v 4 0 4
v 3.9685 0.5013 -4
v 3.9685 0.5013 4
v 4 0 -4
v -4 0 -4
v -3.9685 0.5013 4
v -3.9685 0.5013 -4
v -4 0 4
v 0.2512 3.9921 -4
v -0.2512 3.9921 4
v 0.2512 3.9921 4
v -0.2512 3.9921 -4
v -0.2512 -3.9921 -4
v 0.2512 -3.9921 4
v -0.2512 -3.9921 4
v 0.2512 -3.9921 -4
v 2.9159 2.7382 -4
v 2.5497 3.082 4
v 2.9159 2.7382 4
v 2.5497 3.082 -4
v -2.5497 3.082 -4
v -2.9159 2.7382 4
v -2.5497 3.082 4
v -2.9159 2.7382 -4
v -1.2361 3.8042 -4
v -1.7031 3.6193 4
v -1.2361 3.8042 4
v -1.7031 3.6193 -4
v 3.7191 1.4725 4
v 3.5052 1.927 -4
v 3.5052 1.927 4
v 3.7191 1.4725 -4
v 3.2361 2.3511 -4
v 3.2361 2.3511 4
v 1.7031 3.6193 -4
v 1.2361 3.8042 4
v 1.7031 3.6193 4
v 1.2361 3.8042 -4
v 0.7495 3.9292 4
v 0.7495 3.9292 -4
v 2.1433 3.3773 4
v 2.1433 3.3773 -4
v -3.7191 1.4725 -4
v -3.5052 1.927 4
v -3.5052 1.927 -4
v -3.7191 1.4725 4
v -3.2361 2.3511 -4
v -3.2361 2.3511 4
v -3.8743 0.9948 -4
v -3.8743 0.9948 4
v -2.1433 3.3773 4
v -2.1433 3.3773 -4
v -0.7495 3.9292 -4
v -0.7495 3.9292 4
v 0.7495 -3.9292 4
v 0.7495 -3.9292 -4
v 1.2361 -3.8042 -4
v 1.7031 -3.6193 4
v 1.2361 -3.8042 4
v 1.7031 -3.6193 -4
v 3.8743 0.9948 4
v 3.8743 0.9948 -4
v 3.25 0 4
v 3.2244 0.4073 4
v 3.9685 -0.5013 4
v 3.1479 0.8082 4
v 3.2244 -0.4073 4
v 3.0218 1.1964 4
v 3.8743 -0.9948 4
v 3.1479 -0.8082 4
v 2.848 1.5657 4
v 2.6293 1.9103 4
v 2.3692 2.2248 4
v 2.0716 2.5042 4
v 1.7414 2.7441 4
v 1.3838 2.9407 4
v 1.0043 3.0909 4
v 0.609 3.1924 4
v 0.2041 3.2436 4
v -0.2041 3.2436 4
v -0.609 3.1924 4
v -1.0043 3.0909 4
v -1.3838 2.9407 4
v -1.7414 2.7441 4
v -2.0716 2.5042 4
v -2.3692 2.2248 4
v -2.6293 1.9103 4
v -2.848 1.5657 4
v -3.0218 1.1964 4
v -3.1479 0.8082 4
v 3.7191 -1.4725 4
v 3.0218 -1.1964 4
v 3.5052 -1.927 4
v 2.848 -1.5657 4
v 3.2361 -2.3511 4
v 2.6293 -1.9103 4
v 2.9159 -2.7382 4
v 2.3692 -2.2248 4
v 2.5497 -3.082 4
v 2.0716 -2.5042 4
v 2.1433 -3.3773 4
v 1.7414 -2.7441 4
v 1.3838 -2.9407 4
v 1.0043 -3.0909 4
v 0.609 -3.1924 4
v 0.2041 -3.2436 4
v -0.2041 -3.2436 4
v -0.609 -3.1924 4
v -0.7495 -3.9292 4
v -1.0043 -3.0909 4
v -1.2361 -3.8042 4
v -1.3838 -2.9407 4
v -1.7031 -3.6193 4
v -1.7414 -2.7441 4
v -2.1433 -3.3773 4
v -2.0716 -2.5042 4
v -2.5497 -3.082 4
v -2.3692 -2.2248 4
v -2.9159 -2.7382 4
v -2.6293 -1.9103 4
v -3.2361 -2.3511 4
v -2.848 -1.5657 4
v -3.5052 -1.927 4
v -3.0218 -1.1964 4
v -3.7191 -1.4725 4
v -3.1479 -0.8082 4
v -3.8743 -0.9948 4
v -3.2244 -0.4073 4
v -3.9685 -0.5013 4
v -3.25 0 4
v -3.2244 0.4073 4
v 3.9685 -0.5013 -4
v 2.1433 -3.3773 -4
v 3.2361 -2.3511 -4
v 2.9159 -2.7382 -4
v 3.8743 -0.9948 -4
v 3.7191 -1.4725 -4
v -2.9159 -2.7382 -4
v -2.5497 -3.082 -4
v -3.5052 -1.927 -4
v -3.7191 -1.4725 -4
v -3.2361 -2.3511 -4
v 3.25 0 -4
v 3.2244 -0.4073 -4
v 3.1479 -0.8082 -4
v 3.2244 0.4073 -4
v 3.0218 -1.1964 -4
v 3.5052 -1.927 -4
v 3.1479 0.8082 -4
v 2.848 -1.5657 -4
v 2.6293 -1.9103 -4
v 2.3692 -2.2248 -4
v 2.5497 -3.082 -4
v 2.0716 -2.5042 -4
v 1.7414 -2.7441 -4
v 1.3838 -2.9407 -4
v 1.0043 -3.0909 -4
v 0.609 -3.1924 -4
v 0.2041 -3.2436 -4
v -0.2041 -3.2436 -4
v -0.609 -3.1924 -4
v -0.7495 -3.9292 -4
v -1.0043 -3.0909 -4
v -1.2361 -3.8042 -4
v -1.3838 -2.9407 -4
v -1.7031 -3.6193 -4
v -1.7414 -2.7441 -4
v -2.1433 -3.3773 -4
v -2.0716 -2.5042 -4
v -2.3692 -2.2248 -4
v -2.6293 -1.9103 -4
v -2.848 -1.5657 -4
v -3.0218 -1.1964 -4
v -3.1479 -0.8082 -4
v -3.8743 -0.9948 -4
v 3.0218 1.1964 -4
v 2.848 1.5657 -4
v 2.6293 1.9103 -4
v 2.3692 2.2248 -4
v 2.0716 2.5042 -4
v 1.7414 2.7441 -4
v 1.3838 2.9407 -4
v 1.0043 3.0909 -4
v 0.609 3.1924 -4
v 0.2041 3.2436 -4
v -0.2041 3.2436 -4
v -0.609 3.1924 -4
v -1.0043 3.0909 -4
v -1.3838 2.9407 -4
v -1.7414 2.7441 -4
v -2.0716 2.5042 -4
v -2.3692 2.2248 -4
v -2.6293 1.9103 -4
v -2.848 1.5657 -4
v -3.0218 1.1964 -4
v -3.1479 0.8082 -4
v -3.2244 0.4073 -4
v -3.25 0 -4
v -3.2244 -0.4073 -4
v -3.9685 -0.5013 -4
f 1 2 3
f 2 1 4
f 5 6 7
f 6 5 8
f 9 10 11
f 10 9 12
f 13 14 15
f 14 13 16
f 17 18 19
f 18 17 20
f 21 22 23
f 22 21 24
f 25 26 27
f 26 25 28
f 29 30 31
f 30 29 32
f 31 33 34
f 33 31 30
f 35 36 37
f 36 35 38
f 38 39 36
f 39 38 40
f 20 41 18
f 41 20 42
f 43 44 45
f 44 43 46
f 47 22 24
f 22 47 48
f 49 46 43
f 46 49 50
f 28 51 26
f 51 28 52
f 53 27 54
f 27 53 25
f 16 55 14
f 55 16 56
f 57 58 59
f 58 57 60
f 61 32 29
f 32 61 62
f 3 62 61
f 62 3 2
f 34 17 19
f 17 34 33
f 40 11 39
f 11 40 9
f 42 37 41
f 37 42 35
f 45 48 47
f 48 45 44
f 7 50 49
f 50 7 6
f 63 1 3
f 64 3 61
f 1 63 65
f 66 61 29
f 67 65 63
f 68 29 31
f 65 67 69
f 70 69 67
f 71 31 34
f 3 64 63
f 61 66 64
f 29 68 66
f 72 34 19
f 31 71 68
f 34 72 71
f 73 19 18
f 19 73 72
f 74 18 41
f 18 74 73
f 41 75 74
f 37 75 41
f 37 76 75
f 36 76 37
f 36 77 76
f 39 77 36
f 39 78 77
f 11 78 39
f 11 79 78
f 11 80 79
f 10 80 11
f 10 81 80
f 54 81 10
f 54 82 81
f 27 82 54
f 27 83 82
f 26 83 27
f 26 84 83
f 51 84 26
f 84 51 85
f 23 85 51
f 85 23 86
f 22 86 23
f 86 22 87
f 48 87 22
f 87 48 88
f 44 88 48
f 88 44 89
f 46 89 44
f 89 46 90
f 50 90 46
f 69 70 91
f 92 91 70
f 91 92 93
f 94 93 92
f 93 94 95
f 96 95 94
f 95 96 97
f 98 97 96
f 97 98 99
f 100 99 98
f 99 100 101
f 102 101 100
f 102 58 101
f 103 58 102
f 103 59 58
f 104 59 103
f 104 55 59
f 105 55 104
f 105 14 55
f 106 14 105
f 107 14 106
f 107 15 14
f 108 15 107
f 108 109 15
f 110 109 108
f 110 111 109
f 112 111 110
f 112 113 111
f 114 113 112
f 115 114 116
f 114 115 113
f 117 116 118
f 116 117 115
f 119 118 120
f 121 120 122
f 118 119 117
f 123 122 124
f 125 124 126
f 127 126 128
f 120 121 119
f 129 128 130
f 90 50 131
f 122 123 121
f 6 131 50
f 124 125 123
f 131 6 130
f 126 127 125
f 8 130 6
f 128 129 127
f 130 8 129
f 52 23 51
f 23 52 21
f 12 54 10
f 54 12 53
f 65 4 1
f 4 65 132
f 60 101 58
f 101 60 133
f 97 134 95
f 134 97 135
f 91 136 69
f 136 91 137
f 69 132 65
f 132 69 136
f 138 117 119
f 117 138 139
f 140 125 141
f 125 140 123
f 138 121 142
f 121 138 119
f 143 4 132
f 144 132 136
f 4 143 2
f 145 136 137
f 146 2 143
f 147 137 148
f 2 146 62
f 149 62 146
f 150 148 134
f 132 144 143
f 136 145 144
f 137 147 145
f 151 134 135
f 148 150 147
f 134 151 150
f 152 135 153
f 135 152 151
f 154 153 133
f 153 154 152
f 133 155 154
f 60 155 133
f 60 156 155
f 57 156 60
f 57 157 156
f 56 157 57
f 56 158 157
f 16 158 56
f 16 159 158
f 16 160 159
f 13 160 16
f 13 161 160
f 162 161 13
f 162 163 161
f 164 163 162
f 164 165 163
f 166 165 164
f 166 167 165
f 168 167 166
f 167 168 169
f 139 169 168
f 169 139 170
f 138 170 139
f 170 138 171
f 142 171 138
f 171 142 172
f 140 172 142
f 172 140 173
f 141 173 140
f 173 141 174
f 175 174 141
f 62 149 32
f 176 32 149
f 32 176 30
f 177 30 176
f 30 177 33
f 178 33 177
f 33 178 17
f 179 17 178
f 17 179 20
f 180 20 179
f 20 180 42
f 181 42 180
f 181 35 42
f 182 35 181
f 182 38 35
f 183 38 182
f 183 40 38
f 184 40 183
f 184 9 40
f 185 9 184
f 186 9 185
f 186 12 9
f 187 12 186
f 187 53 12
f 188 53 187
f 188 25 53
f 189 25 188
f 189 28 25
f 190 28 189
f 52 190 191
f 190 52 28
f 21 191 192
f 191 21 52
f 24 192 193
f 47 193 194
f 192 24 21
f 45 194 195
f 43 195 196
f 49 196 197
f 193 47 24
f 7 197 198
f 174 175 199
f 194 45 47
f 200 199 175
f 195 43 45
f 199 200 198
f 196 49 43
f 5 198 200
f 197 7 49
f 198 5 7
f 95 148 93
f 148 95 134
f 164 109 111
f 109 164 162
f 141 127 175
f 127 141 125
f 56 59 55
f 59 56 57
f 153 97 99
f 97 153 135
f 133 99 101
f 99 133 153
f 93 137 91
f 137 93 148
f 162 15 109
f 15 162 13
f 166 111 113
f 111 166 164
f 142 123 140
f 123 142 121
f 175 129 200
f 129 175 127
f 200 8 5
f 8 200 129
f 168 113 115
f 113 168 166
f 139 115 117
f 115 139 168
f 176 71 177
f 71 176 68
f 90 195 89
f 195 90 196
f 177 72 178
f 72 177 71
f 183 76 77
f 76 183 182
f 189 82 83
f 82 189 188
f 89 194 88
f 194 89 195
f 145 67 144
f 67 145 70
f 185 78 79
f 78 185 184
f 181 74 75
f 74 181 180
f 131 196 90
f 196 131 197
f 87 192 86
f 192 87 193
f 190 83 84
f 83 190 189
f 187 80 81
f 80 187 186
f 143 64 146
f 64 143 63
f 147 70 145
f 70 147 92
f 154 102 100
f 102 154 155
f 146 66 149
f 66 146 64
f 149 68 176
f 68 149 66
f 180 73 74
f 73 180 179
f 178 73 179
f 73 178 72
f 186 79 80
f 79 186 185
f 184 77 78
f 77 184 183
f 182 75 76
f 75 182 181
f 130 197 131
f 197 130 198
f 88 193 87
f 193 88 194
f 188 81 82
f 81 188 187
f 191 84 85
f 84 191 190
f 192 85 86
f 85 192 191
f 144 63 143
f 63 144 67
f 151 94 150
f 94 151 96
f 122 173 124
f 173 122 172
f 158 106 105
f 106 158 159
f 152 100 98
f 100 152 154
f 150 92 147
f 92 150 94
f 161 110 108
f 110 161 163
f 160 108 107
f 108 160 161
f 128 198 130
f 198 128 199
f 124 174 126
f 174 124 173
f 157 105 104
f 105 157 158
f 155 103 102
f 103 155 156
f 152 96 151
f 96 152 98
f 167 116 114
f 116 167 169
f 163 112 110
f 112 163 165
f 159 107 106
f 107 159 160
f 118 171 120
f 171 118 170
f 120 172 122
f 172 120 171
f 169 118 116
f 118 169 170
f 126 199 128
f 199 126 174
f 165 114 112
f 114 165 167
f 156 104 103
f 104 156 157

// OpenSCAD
$fn = 50;


difference() {
	union() {
		translate(v = [0, 0, -4.0000000000]) {
			cylinder(h = 8, r = 4.0000000000);
		}
	}
	union() {
		translate(v = [0, 0, -100.0000000000]) {
			cylinder(h = 200, r = 3.2500000000);
		}
	}
}
